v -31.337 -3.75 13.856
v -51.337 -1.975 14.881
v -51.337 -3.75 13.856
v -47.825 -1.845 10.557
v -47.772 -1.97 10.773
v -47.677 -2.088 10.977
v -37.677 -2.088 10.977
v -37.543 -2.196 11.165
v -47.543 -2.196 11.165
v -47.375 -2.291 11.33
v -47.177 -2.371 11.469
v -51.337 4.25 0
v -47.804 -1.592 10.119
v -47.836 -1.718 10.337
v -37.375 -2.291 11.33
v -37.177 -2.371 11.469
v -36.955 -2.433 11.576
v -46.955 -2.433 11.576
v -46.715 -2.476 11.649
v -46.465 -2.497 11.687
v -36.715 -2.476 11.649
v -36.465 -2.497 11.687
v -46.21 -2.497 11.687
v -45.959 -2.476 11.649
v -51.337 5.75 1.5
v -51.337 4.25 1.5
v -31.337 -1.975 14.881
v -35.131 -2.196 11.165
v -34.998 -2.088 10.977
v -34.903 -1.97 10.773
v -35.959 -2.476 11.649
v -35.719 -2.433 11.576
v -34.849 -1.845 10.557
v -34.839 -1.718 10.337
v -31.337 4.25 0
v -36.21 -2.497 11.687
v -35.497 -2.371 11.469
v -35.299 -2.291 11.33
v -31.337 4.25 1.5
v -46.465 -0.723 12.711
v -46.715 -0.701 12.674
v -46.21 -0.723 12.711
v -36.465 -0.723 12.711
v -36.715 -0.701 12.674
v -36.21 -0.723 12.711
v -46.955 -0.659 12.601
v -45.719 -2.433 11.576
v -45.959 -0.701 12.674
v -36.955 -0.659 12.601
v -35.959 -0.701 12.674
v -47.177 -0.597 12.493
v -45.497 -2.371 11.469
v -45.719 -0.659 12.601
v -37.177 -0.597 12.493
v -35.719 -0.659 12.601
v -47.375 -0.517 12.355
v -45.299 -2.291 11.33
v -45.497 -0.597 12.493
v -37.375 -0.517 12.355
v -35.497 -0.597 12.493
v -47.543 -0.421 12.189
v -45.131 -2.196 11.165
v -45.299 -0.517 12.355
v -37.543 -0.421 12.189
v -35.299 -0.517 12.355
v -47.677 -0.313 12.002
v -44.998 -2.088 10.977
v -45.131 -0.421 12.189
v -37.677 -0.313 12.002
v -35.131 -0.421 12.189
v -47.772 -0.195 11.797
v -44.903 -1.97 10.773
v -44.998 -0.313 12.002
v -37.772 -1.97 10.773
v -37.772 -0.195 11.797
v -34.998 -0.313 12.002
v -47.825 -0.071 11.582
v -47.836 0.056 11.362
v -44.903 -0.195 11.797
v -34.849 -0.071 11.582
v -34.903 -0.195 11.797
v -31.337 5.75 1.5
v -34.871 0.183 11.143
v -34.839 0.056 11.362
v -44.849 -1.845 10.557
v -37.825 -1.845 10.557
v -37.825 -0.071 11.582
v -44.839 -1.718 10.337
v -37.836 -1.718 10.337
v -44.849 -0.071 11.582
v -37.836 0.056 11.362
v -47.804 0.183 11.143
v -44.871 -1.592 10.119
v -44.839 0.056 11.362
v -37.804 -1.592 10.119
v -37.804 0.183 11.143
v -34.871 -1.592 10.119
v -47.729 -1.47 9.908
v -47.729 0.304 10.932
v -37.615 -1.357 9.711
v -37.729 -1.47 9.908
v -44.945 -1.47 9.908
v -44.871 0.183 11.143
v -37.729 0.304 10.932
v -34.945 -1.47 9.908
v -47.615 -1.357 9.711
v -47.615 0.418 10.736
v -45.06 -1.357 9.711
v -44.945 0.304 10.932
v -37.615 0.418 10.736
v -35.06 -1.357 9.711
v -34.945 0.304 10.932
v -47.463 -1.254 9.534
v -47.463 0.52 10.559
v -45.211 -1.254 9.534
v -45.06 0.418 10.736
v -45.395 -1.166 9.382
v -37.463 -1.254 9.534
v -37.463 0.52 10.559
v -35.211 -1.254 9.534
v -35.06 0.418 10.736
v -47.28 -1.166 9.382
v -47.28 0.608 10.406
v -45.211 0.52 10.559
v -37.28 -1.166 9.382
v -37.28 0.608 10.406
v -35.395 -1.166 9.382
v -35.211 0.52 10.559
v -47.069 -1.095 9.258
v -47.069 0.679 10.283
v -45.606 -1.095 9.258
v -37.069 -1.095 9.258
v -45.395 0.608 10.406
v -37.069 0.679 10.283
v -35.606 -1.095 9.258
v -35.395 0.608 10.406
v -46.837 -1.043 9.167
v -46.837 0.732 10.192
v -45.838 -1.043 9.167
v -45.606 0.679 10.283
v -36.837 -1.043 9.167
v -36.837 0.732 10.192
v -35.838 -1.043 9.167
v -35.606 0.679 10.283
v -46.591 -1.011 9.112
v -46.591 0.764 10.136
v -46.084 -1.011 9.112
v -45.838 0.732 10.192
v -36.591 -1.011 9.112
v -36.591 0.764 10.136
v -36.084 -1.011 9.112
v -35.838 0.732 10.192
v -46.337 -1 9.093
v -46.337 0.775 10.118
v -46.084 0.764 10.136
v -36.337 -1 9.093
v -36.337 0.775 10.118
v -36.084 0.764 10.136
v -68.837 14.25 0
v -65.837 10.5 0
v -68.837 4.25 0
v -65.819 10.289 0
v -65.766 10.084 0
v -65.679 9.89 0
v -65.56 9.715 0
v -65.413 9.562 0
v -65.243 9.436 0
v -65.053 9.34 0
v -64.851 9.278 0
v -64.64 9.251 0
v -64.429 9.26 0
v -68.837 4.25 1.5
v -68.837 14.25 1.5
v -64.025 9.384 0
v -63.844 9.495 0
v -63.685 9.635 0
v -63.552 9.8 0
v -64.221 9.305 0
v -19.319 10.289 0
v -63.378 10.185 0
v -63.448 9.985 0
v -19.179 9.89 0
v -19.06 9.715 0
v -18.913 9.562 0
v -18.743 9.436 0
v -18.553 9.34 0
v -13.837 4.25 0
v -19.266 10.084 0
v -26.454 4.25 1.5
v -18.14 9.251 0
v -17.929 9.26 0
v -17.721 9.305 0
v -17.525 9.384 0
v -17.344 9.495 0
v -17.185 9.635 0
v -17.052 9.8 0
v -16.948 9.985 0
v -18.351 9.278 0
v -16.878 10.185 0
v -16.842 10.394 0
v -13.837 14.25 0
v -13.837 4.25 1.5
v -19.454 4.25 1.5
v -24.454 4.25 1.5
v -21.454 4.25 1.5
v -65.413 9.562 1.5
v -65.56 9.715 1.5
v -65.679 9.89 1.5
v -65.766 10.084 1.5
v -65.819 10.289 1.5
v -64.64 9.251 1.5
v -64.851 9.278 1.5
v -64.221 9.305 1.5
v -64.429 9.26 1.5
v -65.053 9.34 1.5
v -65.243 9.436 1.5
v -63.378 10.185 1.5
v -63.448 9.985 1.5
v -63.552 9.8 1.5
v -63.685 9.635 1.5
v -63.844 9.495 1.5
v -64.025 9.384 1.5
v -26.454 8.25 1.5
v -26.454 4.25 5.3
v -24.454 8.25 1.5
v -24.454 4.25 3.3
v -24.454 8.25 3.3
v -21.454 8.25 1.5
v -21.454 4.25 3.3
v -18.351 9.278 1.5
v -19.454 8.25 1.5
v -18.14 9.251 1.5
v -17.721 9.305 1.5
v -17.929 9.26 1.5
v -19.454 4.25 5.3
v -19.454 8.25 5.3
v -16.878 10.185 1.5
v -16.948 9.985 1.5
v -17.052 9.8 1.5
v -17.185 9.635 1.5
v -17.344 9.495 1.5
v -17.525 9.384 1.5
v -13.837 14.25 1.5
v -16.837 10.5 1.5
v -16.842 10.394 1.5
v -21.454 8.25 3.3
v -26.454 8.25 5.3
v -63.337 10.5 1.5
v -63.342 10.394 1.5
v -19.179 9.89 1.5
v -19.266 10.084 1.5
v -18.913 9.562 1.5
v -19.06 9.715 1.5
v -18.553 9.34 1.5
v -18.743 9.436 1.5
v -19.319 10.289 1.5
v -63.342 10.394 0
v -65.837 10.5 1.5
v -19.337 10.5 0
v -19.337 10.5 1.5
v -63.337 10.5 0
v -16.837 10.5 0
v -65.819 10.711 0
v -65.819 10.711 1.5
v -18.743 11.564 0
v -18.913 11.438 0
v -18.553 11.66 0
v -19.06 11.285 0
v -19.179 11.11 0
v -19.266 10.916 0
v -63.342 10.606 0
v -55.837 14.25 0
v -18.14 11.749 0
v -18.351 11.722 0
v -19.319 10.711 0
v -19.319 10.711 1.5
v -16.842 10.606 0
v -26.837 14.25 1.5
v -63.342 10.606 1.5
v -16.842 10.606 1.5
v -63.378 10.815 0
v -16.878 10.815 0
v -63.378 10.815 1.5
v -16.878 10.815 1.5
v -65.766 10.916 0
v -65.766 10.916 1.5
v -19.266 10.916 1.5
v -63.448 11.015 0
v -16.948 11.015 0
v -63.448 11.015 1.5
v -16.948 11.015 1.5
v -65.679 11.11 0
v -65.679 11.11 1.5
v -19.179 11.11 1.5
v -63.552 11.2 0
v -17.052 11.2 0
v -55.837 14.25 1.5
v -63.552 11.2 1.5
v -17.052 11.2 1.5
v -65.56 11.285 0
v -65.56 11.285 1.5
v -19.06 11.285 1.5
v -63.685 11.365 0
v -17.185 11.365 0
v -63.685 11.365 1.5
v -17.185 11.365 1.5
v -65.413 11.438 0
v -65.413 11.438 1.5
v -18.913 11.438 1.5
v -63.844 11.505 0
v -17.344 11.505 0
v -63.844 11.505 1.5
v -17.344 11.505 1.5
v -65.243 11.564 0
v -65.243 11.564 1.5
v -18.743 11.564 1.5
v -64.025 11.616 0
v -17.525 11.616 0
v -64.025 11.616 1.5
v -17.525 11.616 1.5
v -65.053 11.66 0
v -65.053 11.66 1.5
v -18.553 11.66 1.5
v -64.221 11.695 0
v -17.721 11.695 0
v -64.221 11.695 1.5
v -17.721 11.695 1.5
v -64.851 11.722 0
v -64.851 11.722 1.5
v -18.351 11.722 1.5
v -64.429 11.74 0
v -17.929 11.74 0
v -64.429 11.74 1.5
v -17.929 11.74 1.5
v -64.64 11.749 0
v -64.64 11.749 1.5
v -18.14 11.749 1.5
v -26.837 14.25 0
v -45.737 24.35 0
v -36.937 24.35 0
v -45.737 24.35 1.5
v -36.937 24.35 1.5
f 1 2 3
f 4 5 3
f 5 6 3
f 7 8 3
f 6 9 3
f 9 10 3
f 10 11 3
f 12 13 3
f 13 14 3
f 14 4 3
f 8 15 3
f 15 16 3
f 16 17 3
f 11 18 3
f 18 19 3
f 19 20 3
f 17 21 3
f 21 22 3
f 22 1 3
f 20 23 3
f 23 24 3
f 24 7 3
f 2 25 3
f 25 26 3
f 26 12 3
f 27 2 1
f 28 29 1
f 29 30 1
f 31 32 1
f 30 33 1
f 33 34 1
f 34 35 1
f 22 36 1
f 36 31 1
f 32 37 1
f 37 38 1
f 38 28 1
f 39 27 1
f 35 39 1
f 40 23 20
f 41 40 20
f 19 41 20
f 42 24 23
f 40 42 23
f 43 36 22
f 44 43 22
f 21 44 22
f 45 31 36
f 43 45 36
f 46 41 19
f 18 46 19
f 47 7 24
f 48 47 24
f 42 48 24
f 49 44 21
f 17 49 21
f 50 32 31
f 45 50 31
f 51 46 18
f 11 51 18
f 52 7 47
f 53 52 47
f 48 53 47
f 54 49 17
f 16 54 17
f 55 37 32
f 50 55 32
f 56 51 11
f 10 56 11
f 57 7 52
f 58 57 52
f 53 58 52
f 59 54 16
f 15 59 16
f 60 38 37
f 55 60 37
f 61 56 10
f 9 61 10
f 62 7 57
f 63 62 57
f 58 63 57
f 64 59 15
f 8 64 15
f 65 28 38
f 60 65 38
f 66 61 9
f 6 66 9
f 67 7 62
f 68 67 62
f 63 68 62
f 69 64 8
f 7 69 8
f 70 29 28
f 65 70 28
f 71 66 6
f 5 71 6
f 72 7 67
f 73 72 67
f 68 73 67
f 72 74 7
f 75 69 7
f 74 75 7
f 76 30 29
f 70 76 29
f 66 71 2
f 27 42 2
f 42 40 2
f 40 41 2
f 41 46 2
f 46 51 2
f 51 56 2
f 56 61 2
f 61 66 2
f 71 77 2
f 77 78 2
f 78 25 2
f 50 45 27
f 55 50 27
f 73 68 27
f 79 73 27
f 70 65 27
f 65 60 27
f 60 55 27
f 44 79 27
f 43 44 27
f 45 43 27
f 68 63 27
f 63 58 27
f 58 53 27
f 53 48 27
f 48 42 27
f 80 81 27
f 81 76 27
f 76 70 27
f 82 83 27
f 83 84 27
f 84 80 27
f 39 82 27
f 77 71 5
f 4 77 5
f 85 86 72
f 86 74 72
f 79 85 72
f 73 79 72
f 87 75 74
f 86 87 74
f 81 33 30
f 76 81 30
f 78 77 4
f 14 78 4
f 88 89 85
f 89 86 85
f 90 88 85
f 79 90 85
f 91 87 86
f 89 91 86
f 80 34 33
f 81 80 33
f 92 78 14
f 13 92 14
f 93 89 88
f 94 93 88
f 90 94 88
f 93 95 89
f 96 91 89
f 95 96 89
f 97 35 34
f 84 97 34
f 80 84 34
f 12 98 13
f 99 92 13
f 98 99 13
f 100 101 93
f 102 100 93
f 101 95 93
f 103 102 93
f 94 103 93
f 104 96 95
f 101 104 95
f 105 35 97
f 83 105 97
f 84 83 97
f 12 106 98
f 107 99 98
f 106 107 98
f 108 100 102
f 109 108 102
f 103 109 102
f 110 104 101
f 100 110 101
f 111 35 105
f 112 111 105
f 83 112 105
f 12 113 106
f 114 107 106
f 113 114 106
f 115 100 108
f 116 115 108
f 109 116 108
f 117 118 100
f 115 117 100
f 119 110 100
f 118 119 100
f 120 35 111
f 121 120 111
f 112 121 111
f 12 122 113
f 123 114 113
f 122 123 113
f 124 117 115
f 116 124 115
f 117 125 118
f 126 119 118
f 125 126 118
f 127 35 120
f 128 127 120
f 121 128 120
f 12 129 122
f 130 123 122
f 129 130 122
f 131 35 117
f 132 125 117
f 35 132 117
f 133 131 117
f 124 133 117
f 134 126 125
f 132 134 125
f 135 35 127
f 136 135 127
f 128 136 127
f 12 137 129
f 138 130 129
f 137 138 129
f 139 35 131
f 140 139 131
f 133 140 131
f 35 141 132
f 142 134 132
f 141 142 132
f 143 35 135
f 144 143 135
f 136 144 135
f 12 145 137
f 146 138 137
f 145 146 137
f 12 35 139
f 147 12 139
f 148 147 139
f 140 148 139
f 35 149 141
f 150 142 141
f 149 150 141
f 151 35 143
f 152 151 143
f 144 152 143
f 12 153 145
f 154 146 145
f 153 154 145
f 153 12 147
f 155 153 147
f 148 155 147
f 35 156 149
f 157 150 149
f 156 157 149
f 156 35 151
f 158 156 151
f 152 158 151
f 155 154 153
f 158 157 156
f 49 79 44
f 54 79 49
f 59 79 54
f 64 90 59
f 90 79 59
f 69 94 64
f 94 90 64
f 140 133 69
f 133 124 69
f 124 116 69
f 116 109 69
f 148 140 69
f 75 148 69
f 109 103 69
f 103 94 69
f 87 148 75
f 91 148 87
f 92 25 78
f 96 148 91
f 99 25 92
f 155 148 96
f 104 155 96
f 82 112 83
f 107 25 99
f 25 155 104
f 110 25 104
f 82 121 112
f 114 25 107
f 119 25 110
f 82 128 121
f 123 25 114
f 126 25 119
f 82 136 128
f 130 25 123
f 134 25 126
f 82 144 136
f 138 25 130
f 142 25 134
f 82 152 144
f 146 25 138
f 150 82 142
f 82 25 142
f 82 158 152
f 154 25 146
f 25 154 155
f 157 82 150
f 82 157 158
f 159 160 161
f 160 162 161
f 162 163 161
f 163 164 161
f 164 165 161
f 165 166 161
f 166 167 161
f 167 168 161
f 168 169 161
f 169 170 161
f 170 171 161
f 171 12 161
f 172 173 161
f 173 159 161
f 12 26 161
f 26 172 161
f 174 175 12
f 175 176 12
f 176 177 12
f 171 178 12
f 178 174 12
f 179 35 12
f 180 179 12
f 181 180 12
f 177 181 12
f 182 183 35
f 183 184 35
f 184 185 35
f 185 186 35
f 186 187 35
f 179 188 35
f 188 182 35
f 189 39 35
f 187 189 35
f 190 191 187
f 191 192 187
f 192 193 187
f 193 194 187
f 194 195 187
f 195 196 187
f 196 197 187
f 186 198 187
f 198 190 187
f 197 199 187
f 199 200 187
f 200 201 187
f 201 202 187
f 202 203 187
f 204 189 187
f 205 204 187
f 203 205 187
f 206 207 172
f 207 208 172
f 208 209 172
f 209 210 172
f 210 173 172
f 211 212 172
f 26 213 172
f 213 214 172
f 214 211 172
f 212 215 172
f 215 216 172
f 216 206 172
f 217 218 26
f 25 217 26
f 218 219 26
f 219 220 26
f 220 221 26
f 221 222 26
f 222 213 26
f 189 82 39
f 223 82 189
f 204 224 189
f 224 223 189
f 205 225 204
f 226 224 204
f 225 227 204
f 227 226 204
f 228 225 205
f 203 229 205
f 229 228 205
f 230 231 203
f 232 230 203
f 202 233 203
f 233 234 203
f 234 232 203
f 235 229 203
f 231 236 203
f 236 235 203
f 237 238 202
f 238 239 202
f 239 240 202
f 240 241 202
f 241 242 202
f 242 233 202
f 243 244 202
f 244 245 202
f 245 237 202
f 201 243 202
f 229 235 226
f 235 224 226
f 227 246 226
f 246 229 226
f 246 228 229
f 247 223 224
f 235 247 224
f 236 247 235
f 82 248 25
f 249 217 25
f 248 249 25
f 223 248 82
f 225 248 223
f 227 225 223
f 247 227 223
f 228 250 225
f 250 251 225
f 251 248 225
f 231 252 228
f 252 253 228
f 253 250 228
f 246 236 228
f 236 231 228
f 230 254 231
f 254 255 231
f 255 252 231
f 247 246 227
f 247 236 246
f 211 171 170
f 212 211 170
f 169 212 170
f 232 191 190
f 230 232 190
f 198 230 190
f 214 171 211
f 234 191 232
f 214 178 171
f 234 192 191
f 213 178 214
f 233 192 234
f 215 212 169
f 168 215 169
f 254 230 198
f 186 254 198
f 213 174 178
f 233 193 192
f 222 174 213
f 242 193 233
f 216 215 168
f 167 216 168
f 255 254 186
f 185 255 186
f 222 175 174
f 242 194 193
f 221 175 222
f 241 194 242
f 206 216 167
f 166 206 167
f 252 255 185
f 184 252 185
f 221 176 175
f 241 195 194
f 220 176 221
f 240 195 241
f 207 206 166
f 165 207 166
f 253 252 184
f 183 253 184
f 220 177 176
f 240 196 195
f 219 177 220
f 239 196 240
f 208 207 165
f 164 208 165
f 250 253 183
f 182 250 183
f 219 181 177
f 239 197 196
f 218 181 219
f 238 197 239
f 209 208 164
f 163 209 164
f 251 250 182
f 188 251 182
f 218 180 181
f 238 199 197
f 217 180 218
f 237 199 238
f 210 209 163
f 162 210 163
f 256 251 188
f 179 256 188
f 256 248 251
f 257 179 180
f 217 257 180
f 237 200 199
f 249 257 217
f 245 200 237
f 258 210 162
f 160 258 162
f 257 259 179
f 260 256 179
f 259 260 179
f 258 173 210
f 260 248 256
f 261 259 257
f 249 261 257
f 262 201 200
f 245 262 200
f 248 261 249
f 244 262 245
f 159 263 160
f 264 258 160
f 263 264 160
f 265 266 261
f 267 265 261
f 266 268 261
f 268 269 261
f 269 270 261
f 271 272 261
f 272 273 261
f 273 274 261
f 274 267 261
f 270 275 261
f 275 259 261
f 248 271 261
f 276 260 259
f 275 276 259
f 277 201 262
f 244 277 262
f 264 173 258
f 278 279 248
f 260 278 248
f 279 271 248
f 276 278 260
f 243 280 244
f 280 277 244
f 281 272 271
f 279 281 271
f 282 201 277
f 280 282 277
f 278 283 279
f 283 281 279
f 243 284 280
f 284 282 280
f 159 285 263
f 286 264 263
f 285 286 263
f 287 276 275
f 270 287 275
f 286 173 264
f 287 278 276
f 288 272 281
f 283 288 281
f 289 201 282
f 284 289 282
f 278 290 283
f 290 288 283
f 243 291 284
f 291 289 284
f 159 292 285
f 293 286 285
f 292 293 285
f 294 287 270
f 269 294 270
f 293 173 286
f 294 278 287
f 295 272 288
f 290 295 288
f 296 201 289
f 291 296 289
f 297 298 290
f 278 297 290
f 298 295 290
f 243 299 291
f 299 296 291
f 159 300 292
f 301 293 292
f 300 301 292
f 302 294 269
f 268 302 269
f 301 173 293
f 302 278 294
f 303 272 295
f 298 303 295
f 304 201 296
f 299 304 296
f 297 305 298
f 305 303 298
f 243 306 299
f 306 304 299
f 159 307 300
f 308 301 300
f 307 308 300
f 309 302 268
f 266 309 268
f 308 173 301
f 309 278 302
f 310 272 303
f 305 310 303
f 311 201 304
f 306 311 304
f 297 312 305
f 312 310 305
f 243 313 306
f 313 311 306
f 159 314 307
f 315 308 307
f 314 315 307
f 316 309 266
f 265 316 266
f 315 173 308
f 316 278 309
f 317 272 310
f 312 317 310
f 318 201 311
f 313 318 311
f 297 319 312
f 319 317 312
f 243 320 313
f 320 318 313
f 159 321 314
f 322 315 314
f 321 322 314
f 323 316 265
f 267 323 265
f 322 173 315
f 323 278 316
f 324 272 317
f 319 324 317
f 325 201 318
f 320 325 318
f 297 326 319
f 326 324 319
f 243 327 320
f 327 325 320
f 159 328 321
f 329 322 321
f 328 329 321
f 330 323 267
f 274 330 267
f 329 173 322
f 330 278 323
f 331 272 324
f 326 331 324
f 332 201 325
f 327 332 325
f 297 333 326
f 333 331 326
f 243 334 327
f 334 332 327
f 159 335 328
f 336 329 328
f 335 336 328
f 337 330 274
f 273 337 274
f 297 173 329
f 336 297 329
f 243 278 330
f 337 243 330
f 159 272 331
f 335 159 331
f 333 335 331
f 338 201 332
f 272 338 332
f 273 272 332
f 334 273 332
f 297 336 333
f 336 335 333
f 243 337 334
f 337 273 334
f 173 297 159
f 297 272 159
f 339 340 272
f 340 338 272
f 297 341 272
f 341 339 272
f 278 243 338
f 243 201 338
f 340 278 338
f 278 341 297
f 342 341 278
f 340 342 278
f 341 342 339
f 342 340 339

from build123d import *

# Parameters (mm, degrees)
CROQUIS1_R              = 1.25
SALIENTE_EXTRUIR1_DEPTH = 1.5
SALIENTE_EXTRUIR2_DEPTH = 55
CORTAR_EXTRUIR1_DEPTH   = 17.5
CORTAR_EXTRUIR2_DEPTH   = 17.5
CROQUIS4_R              = 1.5
CORTAR_EXTRUIR3_DEPTH   = 2.049041
SALIENTE_EXTRUIR3_DEPTH = 4


with BuildPart() as part:
    # Croquis1 → Saliente-Extruir1 (new body)
    with BuildSketch(Plane.XY):
        Polygon((-68.837310195, 14.25), (-55.837310195, 14.25), (-45.737310195, 24.35), (-36.937310195, 24.35), (-26.837310195, 14.25), (-13.837310195, 14.25), (-13.837310195, 4.25), (-68.837310195, 4.25), align=None)
        with Locations((-18.087310195, 10.5)):
            Circle(CROQUIS1_R, mode=Mode.SUBTRACT)
        with Locations((-64.587310195, 10.5)):
            Circle(CROQUIS1_R, mode=Mode.SUBTRACT)
    extrude(amount=SALIENTE_EXTRUIR1_DEPTH)

    # Croquis2 → Saliente-Extruir2 (add)
    with BuildSketch(Plane.ZY.offset(68.837310195)):
        Polygon((13.856406461, -3.75), (14.880925513, -1.975480947), (1.5, 5.75), (1.5, 4.25), (0, 4.25), align=None)
    extrude(amount=-SALIENTE_EXTRUIR2_DEPTH)

    # Croquis2<2> → Cortar-Extruir1 (cut)
    with BuildSketch(Plane.ZY.offset(68.837310195)):
        Polygon((13.856406461, -3.75), (14.880925513, -1.975480947), (1.5, 5.75), (1.5, 4.25), (0, 4.25), align=None)
    extrude(amount=-CORTAR_EXTRUIR1_DEPTH, mode=Mode.SUBTRACT)

    # Croquis3 → Cortar-Extruir2 (cut)
    with BuildSketch(Plane(origin=(-13.837310195, 0, 0), x_dir=(0, 0, -1), z_dir=(1, 0, 0))):
        Polygon((-1.5, 5.75), (-14.880925513, -1.975480947), (-13.856406461, -3.75), (0, 4.25), (-1.5, 4.25), align=None)
    extrude(amount=-CORTAR_EXTRUIR2_DEPTH, mode=Mode.SUBTRACT)

    # Croquis4 → Cortar-Extruir3 (cut)
    with BuildSketch(Plane(origin=(0, 3.1875, 1.840303983), x_dir=(1, 0, 0), z_dir=(0, -0.8660254037844399, -0.4999999999999978))):
        with Locations(Location((-36.337310195, 9.875, 0), (0, 0, 270))):
            Circle(CROQUIS4_R)
        with Locations(Location((-46.337310195, 9.875, 0), (0, 0, 270))):
            Circle(CROQUIS4_R)
    extrude(amount=-CORTAR_EXTRUIR3_DEPTH, mode=Mode.SUBTRACT)

    # Croquis5 → Saliente-Extruir3 (add)
    with BuildSketch(Plane.XZ.offset(-4.25)):
        Polygon((-26.454313708, 1.5), (-24.454313708, 1.5), (-24.454313708, 3.3), (-21.454313708, 3.3), (-21.454313708, 1.5), (-19.454313708, 1.5), (-19.454313708, 5.3), (-26.454313708, 5.3), align=None)
    extrude(amount=-SALIENTE_EXTRUIR3_DEPTH)


solid = part.part
